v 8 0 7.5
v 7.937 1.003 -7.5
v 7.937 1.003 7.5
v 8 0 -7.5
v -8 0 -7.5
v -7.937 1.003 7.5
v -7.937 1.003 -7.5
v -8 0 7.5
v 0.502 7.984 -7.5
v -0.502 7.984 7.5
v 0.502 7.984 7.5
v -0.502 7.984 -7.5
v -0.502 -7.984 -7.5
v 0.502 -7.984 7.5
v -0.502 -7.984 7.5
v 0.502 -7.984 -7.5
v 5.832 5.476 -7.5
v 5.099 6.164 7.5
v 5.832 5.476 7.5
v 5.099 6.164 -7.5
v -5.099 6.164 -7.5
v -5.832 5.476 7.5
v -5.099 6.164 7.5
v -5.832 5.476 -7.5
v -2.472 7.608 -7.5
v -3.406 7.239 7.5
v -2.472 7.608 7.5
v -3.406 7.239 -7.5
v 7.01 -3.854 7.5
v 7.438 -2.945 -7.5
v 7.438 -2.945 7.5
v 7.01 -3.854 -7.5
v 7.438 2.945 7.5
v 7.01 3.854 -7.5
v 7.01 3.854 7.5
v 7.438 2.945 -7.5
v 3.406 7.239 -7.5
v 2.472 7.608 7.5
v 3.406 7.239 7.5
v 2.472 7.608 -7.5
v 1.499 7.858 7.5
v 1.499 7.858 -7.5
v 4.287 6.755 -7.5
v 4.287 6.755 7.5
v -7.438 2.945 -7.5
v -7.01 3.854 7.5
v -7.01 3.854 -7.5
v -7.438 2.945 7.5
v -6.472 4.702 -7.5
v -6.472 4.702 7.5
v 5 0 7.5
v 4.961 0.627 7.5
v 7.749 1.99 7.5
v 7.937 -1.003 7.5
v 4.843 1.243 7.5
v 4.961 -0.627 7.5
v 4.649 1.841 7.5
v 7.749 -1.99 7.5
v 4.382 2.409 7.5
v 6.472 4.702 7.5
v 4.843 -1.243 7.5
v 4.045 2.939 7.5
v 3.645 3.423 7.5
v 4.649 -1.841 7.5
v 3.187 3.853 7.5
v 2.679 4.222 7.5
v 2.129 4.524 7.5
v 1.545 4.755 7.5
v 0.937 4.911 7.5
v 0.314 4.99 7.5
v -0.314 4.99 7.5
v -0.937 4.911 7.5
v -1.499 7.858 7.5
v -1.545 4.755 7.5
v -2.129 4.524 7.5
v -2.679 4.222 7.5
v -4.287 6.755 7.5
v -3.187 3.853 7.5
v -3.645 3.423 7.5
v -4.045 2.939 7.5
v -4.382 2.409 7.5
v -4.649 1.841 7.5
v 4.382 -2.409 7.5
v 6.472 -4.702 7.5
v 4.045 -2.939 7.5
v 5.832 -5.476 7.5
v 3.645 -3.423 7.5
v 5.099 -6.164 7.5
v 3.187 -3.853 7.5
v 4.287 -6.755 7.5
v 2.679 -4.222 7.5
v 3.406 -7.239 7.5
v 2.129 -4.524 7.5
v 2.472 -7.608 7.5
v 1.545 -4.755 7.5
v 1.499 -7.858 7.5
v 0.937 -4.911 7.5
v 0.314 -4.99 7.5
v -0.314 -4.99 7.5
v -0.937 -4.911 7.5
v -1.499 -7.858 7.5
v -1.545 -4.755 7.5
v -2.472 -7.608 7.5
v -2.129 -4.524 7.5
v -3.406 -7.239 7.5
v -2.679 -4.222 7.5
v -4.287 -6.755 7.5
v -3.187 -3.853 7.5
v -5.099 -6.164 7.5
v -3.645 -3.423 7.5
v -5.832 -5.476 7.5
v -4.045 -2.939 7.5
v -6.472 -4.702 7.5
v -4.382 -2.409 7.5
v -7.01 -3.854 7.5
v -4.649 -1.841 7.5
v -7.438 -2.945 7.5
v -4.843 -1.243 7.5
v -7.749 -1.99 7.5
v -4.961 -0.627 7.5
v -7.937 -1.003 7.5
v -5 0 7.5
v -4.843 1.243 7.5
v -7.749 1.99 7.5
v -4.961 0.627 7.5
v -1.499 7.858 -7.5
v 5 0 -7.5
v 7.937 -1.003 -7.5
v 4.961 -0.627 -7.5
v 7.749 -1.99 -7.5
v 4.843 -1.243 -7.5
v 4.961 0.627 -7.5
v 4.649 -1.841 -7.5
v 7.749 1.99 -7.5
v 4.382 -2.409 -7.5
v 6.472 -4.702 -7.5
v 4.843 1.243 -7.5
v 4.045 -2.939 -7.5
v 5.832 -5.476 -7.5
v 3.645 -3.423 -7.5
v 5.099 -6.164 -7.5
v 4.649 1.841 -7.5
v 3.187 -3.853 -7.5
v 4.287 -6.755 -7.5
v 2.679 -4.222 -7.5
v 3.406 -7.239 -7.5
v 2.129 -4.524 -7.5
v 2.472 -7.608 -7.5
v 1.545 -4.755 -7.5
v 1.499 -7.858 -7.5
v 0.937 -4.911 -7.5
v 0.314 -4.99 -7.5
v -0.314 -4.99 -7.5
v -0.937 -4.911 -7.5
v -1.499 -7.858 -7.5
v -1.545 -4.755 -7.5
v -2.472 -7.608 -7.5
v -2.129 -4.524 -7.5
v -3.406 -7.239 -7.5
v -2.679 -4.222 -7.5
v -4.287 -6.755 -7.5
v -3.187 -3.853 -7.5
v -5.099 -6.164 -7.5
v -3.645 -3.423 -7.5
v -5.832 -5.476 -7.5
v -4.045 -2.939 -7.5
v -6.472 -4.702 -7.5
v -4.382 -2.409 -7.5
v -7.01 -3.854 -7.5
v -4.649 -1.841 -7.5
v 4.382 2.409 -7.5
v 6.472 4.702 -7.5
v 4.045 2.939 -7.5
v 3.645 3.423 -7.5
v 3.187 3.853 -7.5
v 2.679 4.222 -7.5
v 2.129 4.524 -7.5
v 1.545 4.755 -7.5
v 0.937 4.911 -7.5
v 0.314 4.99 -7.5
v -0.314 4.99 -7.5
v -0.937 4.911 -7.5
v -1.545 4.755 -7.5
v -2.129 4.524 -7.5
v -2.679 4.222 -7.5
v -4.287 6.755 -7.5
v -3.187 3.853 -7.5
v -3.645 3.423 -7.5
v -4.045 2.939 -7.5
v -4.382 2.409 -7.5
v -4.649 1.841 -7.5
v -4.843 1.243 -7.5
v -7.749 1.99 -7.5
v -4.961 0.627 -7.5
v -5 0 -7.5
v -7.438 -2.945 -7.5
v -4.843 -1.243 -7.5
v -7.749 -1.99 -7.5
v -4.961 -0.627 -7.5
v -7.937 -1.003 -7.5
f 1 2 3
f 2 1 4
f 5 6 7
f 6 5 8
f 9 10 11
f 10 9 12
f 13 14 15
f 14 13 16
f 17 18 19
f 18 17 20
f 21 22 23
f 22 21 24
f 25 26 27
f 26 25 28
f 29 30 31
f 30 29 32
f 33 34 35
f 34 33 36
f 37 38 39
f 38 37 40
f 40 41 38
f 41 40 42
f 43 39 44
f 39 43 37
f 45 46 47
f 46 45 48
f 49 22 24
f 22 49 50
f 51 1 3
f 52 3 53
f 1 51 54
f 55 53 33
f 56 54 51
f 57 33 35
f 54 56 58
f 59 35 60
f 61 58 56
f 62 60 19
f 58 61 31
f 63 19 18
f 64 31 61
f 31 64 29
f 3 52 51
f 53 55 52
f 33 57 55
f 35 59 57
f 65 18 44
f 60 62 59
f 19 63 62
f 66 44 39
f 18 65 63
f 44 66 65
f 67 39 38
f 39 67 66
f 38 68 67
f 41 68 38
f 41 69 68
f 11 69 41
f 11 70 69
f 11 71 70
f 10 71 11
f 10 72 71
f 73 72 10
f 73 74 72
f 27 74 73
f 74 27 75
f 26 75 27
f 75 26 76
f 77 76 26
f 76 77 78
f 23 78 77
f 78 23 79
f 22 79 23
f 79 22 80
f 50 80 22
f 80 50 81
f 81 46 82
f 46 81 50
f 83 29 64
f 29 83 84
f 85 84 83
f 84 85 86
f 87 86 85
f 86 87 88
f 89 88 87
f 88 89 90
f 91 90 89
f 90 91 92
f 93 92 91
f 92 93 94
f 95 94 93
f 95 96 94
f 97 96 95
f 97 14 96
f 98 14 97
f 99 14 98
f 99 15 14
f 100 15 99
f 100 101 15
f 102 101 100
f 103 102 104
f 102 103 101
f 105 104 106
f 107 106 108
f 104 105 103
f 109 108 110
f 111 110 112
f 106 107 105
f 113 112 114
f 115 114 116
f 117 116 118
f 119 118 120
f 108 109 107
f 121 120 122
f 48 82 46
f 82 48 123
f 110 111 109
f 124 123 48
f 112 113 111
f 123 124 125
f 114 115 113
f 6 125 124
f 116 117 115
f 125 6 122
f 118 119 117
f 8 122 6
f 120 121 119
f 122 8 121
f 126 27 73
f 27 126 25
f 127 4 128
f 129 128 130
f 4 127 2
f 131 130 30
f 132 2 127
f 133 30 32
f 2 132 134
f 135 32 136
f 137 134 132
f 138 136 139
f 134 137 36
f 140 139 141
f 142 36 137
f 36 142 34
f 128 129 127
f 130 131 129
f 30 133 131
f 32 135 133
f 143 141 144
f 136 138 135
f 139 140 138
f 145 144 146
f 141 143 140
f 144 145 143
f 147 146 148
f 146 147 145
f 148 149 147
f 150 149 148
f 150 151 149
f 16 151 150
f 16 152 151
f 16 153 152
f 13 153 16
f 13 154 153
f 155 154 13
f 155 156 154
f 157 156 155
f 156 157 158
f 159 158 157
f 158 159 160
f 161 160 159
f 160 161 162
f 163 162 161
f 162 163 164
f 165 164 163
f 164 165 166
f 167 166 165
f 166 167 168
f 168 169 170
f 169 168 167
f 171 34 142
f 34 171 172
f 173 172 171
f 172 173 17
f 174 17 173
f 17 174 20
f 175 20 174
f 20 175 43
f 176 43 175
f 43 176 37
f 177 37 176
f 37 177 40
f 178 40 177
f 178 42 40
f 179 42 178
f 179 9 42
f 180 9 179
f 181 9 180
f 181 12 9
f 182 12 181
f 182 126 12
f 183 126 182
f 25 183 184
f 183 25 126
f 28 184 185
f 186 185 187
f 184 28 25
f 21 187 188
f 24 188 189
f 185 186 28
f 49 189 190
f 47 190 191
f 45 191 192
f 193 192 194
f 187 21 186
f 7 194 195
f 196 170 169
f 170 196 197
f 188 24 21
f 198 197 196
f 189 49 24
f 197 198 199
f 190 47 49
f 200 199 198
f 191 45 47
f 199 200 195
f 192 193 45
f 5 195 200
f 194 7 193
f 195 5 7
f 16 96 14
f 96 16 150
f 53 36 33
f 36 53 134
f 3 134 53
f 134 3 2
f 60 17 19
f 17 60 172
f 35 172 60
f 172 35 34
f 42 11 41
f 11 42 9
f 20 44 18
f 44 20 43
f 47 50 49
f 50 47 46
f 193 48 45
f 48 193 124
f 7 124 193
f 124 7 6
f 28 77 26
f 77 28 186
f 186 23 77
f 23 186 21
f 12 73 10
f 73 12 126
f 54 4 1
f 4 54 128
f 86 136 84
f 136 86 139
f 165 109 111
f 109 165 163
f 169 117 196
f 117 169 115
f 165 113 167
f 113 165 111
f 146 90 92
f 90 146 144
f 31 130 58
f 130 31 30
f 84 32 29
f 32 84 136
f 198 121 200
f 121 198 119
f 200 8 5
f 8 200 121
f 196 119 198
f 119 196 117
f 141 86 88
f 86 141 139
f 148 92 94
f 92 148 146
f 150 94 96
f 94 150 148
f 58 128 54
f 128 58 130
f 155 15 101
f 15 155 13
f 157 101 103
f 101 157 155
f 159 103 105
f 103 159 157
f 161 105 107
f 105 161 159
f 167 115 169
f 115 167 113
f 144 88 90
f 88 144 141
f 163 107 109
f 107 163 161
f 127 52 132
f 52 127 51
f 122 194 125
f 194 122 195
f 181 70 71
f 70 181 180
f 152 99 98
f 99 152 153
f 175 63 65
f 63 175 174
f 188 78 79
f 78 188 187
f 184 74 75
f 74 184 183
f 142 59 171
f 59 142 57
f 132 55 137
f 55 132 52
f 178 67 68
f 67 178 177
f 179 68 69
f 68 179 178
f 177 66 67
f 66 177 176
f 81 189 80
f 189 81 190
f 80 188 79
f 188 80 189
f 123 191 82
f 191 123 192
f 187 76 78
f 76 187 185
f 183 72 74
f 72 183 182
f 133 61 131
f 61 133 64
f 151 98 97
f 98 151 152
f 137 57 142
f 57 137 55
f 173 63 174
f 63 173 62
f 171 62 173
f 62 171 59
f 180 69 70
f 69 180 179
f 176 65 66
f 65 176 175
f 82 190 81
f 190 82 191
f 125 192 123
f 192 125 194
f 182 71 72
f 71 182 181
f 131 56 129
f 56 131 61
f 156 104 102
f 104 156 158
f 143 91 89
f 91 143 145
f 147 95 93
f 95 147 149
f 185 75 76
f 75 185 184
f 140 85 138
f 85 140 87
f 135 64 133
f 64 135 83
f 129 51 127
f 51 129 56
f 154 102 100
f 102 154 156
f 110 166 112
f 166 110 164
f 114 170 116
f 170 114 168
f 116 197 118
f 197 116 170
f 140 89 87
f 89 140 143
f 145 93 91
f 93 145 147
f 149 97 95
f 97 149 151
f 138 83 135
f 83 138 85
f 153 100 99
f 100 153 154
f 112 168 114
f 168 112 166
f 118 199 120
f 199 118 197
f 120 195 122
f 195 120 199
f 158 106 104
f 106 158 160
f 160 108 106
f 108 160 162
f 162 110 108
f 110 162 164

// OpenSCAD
$fn = 50;


difference() {
	union() {
		translate(v = [0, 0, -7.5000000000]) {
			cylinder(h = 15, r = 8.0000000000);
		}
	}
	union() {
		translate(v = [0, 0, -100.0000000000]) {
			cylinder(h = 200, r = 5.0000000000);
		}
	}
}
